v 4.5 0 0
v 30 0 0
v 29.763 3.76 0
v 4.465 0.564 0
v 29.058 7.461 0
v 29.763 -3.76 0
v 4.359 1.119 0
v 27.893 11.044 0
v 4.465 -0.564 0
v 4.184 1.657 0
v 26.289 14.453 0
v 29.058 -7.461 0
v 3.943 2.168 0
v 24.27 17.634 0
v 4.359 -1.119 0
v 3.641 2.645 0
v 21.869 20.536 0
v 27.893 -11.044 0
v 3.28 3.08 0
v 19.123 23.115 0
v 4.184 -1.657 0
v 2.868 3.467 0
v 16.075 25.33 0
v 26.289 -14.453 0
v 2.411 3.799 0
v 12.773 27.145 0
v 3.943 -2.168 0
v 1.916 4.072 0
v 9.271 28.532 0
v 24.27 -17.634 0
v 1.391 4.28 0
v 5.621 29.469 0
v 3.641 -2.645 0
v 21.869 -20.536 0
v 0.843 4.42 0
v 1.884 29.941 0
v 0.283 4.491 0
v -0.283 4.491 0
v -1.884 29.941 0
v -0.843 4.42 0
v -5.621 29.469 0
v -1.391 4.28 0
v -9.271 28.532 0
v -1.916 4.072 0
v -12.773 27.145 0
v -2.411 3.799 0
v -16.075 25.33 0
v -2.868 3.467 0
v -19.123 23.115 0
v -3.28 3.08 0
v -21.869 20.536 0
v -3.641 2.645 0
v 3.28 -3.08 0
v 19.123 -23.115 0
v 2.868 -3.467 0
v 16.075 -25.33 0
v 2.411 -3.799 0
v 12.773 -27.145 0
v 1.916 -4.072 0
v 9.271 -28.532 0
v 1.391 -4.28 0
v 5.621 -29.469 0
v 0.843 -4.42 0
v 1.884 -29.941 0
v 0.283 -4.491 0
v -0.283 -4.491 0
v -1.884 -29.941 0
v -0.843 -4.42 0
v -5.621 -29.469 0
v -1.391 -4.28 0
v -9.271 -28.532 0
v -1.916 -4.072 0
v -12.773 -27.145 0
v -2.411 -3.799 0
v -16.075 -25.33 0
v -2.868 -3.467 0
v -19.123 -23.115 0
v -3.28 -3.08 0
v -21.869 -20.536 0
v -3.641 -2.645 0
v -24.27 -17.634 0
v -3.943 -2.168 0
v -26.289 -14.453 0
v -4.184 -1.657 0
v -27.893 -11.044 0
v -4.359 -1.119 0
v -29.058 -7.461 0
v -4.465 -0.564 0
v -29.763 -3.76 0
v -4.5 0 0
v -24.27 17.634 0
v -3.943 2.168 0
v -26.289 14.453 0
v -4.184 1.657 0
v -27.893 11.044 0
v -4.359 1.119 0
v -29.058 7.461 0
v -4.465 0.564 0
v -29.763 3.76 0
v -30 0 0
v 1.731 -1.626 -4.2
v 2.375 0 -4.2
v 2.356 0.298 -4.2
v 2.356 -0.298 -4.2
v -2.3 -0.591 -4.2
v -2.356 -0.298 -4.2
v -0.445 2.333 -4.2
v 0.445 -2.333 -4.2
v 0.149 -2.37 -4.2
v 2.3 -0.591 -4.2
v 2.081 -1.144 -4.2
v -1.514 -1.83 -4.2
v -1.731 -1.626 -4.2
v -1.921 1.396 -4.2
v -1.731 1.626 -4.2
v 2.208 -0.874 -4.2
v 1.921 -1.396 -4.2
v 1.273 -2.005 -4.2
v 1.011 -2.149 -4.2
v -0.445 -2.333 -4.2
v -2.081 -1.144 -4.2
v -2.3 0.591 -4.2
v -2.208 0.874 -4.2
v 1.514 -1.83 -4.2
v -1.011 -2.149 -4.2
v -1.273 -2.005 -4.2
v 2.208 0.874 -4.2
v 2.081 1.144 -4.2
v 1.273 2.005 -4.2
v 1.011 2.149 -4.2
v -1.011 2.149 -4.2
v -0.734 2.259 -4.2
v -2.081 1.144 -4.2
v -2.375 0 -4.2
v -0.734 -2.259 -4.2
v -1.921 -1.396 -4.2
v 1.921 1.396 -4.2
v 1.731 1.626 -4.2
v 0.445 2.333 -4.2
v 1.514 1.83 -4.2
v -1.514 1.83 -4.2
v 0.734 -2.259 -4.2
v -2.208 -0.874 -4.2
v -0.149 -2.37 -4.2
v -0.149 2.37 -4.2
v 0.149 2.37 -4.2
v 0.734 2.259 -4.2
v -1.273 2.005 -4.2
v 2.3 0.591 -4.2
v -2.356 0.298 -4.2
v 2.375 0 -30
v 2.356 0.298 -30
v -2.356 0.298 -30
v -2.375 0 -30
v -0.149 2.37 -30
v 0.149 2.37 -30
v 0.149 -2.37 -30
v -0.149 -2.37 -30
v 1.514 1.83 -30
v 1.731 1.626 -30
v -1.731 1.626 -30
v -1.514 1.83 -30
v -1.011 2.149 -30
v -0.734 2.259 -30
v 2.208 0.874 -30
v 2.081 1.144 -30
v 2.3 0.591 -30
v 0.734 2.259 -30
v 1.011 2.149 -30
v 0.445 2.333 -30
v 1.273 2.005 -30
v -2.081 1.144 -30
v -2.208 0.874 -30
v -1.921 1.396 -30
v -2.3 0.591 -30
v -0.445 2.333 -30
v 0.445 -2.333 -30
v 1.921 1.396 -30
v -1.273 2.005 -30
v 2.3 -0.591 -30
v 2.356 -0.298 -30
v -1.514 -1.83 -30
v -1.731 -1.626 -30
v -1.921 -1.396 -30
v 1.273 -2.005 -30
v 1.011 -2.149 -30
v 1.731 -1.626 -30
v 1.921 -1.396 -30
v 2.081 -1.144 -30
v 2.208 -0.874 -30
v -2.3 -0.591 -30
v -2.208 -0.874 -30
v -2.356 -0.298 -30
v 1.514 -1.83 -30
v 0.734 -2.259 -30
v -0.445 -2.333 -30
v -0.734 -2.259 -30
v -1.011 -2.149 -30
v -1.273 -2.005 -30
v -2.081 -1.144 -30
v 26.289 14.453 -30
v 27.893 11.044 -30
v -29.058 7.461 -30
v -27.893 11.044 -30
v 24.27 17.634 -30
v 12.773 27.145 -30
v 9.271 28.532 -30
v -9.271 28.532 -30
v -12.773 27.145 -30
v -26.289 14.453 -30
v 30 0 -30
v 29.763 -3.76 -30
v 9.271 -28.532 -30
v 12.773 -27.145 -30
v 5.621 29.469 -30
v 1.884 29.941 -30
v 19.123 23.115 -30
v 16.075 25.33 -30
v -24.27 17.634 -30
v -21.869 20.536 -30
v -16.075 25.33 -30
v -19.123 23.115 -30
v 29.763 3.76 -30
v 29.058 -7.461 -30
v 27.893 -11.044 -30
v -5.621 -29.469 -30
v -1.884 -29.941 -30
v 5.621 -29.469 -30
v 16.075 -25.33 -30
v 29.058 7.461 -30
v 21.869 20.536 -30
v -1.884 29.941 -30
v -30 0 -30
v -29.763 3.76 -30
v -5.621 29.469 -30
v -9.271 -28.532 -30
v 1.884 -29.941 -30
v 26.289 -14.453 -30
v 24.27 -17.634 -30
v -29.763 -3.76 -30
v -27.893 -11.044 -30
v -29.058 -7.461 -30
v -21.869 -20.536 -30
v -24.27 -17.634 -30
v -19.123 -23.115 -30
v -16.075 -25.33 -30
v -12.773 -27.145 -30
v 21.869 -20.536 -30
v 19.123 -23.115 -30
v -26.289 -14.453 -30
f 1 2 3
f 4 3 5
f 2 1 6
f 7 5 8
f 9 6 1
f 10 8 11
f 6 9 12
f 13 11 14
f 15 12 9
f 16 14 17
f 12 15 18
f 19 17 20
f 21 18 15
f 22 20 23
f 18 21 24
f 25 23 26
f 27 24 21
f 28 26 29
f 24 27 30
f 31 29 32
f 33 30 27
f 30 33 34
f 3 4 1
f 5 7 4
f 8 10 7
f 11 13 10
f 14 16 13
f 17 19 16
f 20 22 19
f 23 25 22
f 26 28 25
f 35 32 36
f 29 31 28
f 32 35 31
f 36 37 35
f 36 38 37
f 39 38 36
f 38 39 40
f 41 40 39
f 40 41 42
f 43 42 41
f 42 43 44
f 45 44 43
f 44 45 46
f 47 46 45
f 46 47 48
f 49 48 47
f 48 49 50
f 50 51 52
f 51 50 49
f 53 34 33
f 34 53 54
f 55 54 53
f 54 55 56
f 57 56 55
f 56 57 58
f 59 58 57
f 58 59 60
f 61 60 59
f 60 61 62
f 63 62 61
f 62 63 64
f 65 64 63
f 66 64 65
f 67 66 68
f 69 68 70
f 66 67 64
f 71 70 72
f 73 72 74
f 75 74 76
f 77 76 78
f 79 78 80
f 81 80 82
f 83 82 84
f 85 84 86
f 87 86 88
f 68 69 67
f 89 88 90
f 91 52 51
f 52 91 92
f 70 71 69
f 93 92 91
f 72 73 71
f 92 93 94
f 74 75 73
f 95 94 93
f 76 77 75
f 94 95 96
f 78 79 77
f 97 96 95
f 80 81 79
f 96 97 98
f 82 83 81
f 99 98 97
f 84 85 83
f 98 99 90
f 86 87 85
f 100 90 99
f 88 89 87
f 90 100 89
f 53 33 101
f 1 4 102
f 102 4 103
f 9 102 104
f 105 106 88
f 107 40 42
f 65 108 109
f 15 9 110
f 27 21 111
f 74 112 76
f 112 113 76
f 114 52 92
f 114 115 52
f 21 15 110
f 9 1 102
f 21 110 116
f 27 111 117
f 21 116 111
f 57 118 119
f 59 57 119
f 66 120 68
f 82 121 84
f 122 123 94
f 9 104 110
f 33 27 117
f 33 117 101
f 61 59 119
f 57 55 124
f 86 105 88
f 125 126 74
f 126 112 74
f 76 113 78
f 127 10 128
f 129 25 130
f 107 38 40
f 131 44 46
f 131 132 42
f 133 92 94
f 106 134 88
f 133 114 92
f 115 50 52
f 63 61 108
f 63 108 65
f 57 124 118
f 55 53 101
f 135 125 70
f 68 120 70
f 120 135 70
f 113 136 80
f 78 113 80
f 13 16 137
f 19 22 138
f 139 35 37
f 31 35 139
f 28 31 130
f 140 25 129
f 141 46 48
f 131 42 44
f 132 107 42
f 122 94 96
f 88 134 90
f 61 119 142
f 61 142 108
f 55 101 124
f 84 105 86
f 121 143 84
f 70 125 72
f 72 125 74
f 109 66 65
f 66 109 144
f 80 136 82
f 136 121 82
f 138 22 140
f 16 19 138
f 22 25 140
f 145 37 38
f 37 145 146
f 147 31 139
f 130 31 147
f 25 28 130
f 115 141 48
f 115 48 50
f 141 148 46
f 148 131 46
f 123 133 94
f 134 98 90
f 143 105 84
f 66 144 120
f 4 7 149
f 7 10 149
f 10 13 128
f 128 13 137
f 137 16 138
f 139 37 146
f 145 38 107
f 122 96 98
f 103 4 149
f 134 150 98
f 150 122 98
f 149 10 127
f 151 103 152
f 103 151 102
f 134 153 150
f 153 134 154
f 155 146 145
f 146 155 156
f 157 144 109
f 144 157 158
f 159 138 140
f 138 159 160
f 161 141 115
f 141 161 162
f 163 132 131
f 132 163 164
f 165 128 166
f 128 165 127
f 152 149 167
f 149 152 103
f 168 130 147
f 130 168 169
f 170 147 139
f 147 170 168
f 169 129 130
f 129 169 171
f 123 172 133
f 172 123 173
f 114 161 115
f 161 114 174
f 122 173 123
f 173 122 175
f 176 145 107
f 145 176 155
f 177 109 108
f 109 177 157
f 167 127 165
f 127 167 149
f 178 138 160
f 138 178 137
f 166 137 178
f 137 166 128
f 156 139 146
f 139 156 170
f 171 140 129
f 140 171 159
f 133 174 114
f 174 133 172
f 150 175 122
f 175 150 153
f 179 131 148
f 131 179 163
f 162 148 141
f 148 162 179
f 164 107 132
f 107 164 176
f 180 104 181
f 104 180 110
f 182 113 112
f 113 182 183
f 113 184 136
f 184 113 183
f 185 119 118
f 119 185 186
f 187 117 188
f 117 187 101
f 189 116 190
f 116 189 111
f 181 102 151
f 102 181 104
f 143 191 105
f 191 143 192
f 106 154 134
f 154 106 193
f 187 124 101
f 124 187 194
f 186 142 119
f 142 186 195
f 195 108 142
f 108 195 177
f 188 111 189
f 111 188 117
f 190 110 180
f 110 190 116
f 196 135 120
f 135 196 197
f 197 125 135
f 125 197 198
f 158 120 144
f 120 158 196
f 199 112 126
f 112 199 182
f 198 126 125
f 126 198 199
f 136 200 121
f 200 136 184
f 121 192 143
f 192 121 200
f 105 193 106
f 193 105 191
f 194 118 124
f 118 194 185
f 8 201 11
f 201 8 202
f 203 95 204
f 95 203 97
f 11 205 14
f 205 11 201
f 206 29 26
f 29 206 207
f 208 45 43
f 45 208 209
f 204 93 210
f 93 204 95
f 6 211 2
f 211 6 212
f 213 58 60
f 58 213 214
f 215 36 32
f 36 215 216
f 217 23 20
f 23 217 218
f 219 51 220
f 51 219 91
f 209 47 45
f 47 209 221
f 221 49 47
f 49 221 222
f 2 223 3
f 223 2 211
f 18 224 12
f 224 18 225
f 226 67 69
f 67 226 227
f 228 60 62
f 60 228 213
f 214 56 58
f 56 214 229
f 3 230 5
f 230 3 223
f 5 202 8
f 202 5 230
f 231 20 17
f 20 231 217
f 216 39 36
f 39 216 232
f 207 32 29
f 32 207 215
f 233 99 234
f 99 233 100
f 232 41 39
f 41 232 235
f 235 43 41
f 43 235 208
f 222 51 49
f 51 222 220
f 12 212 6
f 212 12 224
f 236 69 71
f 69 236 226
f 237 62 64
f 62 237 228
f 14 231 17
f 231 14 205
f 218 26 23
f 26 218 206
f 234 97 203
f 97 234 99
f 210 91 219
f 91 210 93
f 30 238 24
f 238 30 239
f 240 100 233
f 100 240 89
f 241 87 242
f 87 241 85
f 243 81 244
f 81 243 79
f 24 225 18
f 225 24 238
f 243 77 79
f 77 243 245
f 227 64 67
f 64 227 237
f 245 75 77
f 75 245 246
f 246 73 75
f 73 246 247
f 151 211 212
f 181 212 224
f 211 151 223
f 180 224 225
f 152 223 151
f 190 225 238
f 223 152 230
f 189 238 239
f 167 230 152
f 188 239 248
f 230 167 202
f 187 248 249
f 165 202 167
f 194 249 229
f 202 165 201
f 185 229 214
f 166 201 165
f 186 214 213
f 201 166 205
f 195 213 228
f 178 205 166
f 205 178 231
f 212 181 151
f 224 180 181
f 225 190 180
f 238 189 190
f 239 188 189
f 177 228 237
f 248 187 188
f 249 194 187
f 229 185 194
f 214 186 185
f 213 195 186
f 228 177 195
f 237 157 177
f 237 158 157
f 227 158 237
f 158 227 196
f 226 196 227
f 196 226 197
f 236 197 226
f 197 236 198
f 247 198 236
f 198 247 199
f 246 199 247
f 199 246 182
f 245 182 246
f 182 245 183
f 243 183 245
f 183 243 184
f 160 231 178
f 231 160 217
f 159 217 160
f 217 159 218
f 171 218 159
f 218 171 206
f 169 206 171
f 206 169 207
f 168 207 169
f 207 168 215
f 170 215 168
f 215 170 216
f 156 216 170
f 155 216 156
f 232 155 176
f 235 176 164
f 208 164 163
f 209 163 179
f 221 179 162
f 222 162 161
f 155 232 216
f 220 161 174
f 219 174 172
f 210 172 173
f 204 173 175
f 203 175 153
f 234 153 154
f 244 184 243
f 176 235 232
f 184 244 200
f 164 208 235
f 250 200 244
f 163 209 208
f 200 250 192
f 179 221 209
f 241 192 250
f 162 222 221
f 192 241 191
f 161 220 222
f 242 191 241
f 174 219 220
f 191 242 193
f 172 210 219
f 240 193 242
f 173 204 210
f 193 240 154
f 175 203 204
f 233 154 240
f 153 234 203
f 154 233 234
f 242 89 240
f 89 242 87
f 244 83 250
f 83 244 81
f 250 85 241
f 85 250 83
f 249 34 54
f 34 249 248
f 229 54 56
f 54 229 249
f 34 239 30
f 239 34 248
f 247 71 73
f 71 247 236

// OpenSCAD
$fn = 50;

difference() {
	union() {
		translate(v = [0, 0, -30.0]) {
			cylinder(h = 30, r = 30.0);
		}
	}
	union() {
		translate(v = [0, 0, 0]) {
			rotate(a = [0, 0, 0]) {
				difference() {
					union() {
						translate(v = [0, 0, -33.0]) {
							cylinder(h = 33, r = 2.25);
						}
						translate(v = [0, 0, -4.2]) {
							cylinder(h = 4.2, r1 = 2.375, r2 = 4.5);
						}
						translate(v = [0, 0, -33.0]) {
							cylinder(h = 33, r = 2.375);
						}
						translate(v = [0, 0, -33.0]) {
							cylinder(h = 33, r = 2.25);
						}
					}
					union();
				}
			}
		}
	}
}
